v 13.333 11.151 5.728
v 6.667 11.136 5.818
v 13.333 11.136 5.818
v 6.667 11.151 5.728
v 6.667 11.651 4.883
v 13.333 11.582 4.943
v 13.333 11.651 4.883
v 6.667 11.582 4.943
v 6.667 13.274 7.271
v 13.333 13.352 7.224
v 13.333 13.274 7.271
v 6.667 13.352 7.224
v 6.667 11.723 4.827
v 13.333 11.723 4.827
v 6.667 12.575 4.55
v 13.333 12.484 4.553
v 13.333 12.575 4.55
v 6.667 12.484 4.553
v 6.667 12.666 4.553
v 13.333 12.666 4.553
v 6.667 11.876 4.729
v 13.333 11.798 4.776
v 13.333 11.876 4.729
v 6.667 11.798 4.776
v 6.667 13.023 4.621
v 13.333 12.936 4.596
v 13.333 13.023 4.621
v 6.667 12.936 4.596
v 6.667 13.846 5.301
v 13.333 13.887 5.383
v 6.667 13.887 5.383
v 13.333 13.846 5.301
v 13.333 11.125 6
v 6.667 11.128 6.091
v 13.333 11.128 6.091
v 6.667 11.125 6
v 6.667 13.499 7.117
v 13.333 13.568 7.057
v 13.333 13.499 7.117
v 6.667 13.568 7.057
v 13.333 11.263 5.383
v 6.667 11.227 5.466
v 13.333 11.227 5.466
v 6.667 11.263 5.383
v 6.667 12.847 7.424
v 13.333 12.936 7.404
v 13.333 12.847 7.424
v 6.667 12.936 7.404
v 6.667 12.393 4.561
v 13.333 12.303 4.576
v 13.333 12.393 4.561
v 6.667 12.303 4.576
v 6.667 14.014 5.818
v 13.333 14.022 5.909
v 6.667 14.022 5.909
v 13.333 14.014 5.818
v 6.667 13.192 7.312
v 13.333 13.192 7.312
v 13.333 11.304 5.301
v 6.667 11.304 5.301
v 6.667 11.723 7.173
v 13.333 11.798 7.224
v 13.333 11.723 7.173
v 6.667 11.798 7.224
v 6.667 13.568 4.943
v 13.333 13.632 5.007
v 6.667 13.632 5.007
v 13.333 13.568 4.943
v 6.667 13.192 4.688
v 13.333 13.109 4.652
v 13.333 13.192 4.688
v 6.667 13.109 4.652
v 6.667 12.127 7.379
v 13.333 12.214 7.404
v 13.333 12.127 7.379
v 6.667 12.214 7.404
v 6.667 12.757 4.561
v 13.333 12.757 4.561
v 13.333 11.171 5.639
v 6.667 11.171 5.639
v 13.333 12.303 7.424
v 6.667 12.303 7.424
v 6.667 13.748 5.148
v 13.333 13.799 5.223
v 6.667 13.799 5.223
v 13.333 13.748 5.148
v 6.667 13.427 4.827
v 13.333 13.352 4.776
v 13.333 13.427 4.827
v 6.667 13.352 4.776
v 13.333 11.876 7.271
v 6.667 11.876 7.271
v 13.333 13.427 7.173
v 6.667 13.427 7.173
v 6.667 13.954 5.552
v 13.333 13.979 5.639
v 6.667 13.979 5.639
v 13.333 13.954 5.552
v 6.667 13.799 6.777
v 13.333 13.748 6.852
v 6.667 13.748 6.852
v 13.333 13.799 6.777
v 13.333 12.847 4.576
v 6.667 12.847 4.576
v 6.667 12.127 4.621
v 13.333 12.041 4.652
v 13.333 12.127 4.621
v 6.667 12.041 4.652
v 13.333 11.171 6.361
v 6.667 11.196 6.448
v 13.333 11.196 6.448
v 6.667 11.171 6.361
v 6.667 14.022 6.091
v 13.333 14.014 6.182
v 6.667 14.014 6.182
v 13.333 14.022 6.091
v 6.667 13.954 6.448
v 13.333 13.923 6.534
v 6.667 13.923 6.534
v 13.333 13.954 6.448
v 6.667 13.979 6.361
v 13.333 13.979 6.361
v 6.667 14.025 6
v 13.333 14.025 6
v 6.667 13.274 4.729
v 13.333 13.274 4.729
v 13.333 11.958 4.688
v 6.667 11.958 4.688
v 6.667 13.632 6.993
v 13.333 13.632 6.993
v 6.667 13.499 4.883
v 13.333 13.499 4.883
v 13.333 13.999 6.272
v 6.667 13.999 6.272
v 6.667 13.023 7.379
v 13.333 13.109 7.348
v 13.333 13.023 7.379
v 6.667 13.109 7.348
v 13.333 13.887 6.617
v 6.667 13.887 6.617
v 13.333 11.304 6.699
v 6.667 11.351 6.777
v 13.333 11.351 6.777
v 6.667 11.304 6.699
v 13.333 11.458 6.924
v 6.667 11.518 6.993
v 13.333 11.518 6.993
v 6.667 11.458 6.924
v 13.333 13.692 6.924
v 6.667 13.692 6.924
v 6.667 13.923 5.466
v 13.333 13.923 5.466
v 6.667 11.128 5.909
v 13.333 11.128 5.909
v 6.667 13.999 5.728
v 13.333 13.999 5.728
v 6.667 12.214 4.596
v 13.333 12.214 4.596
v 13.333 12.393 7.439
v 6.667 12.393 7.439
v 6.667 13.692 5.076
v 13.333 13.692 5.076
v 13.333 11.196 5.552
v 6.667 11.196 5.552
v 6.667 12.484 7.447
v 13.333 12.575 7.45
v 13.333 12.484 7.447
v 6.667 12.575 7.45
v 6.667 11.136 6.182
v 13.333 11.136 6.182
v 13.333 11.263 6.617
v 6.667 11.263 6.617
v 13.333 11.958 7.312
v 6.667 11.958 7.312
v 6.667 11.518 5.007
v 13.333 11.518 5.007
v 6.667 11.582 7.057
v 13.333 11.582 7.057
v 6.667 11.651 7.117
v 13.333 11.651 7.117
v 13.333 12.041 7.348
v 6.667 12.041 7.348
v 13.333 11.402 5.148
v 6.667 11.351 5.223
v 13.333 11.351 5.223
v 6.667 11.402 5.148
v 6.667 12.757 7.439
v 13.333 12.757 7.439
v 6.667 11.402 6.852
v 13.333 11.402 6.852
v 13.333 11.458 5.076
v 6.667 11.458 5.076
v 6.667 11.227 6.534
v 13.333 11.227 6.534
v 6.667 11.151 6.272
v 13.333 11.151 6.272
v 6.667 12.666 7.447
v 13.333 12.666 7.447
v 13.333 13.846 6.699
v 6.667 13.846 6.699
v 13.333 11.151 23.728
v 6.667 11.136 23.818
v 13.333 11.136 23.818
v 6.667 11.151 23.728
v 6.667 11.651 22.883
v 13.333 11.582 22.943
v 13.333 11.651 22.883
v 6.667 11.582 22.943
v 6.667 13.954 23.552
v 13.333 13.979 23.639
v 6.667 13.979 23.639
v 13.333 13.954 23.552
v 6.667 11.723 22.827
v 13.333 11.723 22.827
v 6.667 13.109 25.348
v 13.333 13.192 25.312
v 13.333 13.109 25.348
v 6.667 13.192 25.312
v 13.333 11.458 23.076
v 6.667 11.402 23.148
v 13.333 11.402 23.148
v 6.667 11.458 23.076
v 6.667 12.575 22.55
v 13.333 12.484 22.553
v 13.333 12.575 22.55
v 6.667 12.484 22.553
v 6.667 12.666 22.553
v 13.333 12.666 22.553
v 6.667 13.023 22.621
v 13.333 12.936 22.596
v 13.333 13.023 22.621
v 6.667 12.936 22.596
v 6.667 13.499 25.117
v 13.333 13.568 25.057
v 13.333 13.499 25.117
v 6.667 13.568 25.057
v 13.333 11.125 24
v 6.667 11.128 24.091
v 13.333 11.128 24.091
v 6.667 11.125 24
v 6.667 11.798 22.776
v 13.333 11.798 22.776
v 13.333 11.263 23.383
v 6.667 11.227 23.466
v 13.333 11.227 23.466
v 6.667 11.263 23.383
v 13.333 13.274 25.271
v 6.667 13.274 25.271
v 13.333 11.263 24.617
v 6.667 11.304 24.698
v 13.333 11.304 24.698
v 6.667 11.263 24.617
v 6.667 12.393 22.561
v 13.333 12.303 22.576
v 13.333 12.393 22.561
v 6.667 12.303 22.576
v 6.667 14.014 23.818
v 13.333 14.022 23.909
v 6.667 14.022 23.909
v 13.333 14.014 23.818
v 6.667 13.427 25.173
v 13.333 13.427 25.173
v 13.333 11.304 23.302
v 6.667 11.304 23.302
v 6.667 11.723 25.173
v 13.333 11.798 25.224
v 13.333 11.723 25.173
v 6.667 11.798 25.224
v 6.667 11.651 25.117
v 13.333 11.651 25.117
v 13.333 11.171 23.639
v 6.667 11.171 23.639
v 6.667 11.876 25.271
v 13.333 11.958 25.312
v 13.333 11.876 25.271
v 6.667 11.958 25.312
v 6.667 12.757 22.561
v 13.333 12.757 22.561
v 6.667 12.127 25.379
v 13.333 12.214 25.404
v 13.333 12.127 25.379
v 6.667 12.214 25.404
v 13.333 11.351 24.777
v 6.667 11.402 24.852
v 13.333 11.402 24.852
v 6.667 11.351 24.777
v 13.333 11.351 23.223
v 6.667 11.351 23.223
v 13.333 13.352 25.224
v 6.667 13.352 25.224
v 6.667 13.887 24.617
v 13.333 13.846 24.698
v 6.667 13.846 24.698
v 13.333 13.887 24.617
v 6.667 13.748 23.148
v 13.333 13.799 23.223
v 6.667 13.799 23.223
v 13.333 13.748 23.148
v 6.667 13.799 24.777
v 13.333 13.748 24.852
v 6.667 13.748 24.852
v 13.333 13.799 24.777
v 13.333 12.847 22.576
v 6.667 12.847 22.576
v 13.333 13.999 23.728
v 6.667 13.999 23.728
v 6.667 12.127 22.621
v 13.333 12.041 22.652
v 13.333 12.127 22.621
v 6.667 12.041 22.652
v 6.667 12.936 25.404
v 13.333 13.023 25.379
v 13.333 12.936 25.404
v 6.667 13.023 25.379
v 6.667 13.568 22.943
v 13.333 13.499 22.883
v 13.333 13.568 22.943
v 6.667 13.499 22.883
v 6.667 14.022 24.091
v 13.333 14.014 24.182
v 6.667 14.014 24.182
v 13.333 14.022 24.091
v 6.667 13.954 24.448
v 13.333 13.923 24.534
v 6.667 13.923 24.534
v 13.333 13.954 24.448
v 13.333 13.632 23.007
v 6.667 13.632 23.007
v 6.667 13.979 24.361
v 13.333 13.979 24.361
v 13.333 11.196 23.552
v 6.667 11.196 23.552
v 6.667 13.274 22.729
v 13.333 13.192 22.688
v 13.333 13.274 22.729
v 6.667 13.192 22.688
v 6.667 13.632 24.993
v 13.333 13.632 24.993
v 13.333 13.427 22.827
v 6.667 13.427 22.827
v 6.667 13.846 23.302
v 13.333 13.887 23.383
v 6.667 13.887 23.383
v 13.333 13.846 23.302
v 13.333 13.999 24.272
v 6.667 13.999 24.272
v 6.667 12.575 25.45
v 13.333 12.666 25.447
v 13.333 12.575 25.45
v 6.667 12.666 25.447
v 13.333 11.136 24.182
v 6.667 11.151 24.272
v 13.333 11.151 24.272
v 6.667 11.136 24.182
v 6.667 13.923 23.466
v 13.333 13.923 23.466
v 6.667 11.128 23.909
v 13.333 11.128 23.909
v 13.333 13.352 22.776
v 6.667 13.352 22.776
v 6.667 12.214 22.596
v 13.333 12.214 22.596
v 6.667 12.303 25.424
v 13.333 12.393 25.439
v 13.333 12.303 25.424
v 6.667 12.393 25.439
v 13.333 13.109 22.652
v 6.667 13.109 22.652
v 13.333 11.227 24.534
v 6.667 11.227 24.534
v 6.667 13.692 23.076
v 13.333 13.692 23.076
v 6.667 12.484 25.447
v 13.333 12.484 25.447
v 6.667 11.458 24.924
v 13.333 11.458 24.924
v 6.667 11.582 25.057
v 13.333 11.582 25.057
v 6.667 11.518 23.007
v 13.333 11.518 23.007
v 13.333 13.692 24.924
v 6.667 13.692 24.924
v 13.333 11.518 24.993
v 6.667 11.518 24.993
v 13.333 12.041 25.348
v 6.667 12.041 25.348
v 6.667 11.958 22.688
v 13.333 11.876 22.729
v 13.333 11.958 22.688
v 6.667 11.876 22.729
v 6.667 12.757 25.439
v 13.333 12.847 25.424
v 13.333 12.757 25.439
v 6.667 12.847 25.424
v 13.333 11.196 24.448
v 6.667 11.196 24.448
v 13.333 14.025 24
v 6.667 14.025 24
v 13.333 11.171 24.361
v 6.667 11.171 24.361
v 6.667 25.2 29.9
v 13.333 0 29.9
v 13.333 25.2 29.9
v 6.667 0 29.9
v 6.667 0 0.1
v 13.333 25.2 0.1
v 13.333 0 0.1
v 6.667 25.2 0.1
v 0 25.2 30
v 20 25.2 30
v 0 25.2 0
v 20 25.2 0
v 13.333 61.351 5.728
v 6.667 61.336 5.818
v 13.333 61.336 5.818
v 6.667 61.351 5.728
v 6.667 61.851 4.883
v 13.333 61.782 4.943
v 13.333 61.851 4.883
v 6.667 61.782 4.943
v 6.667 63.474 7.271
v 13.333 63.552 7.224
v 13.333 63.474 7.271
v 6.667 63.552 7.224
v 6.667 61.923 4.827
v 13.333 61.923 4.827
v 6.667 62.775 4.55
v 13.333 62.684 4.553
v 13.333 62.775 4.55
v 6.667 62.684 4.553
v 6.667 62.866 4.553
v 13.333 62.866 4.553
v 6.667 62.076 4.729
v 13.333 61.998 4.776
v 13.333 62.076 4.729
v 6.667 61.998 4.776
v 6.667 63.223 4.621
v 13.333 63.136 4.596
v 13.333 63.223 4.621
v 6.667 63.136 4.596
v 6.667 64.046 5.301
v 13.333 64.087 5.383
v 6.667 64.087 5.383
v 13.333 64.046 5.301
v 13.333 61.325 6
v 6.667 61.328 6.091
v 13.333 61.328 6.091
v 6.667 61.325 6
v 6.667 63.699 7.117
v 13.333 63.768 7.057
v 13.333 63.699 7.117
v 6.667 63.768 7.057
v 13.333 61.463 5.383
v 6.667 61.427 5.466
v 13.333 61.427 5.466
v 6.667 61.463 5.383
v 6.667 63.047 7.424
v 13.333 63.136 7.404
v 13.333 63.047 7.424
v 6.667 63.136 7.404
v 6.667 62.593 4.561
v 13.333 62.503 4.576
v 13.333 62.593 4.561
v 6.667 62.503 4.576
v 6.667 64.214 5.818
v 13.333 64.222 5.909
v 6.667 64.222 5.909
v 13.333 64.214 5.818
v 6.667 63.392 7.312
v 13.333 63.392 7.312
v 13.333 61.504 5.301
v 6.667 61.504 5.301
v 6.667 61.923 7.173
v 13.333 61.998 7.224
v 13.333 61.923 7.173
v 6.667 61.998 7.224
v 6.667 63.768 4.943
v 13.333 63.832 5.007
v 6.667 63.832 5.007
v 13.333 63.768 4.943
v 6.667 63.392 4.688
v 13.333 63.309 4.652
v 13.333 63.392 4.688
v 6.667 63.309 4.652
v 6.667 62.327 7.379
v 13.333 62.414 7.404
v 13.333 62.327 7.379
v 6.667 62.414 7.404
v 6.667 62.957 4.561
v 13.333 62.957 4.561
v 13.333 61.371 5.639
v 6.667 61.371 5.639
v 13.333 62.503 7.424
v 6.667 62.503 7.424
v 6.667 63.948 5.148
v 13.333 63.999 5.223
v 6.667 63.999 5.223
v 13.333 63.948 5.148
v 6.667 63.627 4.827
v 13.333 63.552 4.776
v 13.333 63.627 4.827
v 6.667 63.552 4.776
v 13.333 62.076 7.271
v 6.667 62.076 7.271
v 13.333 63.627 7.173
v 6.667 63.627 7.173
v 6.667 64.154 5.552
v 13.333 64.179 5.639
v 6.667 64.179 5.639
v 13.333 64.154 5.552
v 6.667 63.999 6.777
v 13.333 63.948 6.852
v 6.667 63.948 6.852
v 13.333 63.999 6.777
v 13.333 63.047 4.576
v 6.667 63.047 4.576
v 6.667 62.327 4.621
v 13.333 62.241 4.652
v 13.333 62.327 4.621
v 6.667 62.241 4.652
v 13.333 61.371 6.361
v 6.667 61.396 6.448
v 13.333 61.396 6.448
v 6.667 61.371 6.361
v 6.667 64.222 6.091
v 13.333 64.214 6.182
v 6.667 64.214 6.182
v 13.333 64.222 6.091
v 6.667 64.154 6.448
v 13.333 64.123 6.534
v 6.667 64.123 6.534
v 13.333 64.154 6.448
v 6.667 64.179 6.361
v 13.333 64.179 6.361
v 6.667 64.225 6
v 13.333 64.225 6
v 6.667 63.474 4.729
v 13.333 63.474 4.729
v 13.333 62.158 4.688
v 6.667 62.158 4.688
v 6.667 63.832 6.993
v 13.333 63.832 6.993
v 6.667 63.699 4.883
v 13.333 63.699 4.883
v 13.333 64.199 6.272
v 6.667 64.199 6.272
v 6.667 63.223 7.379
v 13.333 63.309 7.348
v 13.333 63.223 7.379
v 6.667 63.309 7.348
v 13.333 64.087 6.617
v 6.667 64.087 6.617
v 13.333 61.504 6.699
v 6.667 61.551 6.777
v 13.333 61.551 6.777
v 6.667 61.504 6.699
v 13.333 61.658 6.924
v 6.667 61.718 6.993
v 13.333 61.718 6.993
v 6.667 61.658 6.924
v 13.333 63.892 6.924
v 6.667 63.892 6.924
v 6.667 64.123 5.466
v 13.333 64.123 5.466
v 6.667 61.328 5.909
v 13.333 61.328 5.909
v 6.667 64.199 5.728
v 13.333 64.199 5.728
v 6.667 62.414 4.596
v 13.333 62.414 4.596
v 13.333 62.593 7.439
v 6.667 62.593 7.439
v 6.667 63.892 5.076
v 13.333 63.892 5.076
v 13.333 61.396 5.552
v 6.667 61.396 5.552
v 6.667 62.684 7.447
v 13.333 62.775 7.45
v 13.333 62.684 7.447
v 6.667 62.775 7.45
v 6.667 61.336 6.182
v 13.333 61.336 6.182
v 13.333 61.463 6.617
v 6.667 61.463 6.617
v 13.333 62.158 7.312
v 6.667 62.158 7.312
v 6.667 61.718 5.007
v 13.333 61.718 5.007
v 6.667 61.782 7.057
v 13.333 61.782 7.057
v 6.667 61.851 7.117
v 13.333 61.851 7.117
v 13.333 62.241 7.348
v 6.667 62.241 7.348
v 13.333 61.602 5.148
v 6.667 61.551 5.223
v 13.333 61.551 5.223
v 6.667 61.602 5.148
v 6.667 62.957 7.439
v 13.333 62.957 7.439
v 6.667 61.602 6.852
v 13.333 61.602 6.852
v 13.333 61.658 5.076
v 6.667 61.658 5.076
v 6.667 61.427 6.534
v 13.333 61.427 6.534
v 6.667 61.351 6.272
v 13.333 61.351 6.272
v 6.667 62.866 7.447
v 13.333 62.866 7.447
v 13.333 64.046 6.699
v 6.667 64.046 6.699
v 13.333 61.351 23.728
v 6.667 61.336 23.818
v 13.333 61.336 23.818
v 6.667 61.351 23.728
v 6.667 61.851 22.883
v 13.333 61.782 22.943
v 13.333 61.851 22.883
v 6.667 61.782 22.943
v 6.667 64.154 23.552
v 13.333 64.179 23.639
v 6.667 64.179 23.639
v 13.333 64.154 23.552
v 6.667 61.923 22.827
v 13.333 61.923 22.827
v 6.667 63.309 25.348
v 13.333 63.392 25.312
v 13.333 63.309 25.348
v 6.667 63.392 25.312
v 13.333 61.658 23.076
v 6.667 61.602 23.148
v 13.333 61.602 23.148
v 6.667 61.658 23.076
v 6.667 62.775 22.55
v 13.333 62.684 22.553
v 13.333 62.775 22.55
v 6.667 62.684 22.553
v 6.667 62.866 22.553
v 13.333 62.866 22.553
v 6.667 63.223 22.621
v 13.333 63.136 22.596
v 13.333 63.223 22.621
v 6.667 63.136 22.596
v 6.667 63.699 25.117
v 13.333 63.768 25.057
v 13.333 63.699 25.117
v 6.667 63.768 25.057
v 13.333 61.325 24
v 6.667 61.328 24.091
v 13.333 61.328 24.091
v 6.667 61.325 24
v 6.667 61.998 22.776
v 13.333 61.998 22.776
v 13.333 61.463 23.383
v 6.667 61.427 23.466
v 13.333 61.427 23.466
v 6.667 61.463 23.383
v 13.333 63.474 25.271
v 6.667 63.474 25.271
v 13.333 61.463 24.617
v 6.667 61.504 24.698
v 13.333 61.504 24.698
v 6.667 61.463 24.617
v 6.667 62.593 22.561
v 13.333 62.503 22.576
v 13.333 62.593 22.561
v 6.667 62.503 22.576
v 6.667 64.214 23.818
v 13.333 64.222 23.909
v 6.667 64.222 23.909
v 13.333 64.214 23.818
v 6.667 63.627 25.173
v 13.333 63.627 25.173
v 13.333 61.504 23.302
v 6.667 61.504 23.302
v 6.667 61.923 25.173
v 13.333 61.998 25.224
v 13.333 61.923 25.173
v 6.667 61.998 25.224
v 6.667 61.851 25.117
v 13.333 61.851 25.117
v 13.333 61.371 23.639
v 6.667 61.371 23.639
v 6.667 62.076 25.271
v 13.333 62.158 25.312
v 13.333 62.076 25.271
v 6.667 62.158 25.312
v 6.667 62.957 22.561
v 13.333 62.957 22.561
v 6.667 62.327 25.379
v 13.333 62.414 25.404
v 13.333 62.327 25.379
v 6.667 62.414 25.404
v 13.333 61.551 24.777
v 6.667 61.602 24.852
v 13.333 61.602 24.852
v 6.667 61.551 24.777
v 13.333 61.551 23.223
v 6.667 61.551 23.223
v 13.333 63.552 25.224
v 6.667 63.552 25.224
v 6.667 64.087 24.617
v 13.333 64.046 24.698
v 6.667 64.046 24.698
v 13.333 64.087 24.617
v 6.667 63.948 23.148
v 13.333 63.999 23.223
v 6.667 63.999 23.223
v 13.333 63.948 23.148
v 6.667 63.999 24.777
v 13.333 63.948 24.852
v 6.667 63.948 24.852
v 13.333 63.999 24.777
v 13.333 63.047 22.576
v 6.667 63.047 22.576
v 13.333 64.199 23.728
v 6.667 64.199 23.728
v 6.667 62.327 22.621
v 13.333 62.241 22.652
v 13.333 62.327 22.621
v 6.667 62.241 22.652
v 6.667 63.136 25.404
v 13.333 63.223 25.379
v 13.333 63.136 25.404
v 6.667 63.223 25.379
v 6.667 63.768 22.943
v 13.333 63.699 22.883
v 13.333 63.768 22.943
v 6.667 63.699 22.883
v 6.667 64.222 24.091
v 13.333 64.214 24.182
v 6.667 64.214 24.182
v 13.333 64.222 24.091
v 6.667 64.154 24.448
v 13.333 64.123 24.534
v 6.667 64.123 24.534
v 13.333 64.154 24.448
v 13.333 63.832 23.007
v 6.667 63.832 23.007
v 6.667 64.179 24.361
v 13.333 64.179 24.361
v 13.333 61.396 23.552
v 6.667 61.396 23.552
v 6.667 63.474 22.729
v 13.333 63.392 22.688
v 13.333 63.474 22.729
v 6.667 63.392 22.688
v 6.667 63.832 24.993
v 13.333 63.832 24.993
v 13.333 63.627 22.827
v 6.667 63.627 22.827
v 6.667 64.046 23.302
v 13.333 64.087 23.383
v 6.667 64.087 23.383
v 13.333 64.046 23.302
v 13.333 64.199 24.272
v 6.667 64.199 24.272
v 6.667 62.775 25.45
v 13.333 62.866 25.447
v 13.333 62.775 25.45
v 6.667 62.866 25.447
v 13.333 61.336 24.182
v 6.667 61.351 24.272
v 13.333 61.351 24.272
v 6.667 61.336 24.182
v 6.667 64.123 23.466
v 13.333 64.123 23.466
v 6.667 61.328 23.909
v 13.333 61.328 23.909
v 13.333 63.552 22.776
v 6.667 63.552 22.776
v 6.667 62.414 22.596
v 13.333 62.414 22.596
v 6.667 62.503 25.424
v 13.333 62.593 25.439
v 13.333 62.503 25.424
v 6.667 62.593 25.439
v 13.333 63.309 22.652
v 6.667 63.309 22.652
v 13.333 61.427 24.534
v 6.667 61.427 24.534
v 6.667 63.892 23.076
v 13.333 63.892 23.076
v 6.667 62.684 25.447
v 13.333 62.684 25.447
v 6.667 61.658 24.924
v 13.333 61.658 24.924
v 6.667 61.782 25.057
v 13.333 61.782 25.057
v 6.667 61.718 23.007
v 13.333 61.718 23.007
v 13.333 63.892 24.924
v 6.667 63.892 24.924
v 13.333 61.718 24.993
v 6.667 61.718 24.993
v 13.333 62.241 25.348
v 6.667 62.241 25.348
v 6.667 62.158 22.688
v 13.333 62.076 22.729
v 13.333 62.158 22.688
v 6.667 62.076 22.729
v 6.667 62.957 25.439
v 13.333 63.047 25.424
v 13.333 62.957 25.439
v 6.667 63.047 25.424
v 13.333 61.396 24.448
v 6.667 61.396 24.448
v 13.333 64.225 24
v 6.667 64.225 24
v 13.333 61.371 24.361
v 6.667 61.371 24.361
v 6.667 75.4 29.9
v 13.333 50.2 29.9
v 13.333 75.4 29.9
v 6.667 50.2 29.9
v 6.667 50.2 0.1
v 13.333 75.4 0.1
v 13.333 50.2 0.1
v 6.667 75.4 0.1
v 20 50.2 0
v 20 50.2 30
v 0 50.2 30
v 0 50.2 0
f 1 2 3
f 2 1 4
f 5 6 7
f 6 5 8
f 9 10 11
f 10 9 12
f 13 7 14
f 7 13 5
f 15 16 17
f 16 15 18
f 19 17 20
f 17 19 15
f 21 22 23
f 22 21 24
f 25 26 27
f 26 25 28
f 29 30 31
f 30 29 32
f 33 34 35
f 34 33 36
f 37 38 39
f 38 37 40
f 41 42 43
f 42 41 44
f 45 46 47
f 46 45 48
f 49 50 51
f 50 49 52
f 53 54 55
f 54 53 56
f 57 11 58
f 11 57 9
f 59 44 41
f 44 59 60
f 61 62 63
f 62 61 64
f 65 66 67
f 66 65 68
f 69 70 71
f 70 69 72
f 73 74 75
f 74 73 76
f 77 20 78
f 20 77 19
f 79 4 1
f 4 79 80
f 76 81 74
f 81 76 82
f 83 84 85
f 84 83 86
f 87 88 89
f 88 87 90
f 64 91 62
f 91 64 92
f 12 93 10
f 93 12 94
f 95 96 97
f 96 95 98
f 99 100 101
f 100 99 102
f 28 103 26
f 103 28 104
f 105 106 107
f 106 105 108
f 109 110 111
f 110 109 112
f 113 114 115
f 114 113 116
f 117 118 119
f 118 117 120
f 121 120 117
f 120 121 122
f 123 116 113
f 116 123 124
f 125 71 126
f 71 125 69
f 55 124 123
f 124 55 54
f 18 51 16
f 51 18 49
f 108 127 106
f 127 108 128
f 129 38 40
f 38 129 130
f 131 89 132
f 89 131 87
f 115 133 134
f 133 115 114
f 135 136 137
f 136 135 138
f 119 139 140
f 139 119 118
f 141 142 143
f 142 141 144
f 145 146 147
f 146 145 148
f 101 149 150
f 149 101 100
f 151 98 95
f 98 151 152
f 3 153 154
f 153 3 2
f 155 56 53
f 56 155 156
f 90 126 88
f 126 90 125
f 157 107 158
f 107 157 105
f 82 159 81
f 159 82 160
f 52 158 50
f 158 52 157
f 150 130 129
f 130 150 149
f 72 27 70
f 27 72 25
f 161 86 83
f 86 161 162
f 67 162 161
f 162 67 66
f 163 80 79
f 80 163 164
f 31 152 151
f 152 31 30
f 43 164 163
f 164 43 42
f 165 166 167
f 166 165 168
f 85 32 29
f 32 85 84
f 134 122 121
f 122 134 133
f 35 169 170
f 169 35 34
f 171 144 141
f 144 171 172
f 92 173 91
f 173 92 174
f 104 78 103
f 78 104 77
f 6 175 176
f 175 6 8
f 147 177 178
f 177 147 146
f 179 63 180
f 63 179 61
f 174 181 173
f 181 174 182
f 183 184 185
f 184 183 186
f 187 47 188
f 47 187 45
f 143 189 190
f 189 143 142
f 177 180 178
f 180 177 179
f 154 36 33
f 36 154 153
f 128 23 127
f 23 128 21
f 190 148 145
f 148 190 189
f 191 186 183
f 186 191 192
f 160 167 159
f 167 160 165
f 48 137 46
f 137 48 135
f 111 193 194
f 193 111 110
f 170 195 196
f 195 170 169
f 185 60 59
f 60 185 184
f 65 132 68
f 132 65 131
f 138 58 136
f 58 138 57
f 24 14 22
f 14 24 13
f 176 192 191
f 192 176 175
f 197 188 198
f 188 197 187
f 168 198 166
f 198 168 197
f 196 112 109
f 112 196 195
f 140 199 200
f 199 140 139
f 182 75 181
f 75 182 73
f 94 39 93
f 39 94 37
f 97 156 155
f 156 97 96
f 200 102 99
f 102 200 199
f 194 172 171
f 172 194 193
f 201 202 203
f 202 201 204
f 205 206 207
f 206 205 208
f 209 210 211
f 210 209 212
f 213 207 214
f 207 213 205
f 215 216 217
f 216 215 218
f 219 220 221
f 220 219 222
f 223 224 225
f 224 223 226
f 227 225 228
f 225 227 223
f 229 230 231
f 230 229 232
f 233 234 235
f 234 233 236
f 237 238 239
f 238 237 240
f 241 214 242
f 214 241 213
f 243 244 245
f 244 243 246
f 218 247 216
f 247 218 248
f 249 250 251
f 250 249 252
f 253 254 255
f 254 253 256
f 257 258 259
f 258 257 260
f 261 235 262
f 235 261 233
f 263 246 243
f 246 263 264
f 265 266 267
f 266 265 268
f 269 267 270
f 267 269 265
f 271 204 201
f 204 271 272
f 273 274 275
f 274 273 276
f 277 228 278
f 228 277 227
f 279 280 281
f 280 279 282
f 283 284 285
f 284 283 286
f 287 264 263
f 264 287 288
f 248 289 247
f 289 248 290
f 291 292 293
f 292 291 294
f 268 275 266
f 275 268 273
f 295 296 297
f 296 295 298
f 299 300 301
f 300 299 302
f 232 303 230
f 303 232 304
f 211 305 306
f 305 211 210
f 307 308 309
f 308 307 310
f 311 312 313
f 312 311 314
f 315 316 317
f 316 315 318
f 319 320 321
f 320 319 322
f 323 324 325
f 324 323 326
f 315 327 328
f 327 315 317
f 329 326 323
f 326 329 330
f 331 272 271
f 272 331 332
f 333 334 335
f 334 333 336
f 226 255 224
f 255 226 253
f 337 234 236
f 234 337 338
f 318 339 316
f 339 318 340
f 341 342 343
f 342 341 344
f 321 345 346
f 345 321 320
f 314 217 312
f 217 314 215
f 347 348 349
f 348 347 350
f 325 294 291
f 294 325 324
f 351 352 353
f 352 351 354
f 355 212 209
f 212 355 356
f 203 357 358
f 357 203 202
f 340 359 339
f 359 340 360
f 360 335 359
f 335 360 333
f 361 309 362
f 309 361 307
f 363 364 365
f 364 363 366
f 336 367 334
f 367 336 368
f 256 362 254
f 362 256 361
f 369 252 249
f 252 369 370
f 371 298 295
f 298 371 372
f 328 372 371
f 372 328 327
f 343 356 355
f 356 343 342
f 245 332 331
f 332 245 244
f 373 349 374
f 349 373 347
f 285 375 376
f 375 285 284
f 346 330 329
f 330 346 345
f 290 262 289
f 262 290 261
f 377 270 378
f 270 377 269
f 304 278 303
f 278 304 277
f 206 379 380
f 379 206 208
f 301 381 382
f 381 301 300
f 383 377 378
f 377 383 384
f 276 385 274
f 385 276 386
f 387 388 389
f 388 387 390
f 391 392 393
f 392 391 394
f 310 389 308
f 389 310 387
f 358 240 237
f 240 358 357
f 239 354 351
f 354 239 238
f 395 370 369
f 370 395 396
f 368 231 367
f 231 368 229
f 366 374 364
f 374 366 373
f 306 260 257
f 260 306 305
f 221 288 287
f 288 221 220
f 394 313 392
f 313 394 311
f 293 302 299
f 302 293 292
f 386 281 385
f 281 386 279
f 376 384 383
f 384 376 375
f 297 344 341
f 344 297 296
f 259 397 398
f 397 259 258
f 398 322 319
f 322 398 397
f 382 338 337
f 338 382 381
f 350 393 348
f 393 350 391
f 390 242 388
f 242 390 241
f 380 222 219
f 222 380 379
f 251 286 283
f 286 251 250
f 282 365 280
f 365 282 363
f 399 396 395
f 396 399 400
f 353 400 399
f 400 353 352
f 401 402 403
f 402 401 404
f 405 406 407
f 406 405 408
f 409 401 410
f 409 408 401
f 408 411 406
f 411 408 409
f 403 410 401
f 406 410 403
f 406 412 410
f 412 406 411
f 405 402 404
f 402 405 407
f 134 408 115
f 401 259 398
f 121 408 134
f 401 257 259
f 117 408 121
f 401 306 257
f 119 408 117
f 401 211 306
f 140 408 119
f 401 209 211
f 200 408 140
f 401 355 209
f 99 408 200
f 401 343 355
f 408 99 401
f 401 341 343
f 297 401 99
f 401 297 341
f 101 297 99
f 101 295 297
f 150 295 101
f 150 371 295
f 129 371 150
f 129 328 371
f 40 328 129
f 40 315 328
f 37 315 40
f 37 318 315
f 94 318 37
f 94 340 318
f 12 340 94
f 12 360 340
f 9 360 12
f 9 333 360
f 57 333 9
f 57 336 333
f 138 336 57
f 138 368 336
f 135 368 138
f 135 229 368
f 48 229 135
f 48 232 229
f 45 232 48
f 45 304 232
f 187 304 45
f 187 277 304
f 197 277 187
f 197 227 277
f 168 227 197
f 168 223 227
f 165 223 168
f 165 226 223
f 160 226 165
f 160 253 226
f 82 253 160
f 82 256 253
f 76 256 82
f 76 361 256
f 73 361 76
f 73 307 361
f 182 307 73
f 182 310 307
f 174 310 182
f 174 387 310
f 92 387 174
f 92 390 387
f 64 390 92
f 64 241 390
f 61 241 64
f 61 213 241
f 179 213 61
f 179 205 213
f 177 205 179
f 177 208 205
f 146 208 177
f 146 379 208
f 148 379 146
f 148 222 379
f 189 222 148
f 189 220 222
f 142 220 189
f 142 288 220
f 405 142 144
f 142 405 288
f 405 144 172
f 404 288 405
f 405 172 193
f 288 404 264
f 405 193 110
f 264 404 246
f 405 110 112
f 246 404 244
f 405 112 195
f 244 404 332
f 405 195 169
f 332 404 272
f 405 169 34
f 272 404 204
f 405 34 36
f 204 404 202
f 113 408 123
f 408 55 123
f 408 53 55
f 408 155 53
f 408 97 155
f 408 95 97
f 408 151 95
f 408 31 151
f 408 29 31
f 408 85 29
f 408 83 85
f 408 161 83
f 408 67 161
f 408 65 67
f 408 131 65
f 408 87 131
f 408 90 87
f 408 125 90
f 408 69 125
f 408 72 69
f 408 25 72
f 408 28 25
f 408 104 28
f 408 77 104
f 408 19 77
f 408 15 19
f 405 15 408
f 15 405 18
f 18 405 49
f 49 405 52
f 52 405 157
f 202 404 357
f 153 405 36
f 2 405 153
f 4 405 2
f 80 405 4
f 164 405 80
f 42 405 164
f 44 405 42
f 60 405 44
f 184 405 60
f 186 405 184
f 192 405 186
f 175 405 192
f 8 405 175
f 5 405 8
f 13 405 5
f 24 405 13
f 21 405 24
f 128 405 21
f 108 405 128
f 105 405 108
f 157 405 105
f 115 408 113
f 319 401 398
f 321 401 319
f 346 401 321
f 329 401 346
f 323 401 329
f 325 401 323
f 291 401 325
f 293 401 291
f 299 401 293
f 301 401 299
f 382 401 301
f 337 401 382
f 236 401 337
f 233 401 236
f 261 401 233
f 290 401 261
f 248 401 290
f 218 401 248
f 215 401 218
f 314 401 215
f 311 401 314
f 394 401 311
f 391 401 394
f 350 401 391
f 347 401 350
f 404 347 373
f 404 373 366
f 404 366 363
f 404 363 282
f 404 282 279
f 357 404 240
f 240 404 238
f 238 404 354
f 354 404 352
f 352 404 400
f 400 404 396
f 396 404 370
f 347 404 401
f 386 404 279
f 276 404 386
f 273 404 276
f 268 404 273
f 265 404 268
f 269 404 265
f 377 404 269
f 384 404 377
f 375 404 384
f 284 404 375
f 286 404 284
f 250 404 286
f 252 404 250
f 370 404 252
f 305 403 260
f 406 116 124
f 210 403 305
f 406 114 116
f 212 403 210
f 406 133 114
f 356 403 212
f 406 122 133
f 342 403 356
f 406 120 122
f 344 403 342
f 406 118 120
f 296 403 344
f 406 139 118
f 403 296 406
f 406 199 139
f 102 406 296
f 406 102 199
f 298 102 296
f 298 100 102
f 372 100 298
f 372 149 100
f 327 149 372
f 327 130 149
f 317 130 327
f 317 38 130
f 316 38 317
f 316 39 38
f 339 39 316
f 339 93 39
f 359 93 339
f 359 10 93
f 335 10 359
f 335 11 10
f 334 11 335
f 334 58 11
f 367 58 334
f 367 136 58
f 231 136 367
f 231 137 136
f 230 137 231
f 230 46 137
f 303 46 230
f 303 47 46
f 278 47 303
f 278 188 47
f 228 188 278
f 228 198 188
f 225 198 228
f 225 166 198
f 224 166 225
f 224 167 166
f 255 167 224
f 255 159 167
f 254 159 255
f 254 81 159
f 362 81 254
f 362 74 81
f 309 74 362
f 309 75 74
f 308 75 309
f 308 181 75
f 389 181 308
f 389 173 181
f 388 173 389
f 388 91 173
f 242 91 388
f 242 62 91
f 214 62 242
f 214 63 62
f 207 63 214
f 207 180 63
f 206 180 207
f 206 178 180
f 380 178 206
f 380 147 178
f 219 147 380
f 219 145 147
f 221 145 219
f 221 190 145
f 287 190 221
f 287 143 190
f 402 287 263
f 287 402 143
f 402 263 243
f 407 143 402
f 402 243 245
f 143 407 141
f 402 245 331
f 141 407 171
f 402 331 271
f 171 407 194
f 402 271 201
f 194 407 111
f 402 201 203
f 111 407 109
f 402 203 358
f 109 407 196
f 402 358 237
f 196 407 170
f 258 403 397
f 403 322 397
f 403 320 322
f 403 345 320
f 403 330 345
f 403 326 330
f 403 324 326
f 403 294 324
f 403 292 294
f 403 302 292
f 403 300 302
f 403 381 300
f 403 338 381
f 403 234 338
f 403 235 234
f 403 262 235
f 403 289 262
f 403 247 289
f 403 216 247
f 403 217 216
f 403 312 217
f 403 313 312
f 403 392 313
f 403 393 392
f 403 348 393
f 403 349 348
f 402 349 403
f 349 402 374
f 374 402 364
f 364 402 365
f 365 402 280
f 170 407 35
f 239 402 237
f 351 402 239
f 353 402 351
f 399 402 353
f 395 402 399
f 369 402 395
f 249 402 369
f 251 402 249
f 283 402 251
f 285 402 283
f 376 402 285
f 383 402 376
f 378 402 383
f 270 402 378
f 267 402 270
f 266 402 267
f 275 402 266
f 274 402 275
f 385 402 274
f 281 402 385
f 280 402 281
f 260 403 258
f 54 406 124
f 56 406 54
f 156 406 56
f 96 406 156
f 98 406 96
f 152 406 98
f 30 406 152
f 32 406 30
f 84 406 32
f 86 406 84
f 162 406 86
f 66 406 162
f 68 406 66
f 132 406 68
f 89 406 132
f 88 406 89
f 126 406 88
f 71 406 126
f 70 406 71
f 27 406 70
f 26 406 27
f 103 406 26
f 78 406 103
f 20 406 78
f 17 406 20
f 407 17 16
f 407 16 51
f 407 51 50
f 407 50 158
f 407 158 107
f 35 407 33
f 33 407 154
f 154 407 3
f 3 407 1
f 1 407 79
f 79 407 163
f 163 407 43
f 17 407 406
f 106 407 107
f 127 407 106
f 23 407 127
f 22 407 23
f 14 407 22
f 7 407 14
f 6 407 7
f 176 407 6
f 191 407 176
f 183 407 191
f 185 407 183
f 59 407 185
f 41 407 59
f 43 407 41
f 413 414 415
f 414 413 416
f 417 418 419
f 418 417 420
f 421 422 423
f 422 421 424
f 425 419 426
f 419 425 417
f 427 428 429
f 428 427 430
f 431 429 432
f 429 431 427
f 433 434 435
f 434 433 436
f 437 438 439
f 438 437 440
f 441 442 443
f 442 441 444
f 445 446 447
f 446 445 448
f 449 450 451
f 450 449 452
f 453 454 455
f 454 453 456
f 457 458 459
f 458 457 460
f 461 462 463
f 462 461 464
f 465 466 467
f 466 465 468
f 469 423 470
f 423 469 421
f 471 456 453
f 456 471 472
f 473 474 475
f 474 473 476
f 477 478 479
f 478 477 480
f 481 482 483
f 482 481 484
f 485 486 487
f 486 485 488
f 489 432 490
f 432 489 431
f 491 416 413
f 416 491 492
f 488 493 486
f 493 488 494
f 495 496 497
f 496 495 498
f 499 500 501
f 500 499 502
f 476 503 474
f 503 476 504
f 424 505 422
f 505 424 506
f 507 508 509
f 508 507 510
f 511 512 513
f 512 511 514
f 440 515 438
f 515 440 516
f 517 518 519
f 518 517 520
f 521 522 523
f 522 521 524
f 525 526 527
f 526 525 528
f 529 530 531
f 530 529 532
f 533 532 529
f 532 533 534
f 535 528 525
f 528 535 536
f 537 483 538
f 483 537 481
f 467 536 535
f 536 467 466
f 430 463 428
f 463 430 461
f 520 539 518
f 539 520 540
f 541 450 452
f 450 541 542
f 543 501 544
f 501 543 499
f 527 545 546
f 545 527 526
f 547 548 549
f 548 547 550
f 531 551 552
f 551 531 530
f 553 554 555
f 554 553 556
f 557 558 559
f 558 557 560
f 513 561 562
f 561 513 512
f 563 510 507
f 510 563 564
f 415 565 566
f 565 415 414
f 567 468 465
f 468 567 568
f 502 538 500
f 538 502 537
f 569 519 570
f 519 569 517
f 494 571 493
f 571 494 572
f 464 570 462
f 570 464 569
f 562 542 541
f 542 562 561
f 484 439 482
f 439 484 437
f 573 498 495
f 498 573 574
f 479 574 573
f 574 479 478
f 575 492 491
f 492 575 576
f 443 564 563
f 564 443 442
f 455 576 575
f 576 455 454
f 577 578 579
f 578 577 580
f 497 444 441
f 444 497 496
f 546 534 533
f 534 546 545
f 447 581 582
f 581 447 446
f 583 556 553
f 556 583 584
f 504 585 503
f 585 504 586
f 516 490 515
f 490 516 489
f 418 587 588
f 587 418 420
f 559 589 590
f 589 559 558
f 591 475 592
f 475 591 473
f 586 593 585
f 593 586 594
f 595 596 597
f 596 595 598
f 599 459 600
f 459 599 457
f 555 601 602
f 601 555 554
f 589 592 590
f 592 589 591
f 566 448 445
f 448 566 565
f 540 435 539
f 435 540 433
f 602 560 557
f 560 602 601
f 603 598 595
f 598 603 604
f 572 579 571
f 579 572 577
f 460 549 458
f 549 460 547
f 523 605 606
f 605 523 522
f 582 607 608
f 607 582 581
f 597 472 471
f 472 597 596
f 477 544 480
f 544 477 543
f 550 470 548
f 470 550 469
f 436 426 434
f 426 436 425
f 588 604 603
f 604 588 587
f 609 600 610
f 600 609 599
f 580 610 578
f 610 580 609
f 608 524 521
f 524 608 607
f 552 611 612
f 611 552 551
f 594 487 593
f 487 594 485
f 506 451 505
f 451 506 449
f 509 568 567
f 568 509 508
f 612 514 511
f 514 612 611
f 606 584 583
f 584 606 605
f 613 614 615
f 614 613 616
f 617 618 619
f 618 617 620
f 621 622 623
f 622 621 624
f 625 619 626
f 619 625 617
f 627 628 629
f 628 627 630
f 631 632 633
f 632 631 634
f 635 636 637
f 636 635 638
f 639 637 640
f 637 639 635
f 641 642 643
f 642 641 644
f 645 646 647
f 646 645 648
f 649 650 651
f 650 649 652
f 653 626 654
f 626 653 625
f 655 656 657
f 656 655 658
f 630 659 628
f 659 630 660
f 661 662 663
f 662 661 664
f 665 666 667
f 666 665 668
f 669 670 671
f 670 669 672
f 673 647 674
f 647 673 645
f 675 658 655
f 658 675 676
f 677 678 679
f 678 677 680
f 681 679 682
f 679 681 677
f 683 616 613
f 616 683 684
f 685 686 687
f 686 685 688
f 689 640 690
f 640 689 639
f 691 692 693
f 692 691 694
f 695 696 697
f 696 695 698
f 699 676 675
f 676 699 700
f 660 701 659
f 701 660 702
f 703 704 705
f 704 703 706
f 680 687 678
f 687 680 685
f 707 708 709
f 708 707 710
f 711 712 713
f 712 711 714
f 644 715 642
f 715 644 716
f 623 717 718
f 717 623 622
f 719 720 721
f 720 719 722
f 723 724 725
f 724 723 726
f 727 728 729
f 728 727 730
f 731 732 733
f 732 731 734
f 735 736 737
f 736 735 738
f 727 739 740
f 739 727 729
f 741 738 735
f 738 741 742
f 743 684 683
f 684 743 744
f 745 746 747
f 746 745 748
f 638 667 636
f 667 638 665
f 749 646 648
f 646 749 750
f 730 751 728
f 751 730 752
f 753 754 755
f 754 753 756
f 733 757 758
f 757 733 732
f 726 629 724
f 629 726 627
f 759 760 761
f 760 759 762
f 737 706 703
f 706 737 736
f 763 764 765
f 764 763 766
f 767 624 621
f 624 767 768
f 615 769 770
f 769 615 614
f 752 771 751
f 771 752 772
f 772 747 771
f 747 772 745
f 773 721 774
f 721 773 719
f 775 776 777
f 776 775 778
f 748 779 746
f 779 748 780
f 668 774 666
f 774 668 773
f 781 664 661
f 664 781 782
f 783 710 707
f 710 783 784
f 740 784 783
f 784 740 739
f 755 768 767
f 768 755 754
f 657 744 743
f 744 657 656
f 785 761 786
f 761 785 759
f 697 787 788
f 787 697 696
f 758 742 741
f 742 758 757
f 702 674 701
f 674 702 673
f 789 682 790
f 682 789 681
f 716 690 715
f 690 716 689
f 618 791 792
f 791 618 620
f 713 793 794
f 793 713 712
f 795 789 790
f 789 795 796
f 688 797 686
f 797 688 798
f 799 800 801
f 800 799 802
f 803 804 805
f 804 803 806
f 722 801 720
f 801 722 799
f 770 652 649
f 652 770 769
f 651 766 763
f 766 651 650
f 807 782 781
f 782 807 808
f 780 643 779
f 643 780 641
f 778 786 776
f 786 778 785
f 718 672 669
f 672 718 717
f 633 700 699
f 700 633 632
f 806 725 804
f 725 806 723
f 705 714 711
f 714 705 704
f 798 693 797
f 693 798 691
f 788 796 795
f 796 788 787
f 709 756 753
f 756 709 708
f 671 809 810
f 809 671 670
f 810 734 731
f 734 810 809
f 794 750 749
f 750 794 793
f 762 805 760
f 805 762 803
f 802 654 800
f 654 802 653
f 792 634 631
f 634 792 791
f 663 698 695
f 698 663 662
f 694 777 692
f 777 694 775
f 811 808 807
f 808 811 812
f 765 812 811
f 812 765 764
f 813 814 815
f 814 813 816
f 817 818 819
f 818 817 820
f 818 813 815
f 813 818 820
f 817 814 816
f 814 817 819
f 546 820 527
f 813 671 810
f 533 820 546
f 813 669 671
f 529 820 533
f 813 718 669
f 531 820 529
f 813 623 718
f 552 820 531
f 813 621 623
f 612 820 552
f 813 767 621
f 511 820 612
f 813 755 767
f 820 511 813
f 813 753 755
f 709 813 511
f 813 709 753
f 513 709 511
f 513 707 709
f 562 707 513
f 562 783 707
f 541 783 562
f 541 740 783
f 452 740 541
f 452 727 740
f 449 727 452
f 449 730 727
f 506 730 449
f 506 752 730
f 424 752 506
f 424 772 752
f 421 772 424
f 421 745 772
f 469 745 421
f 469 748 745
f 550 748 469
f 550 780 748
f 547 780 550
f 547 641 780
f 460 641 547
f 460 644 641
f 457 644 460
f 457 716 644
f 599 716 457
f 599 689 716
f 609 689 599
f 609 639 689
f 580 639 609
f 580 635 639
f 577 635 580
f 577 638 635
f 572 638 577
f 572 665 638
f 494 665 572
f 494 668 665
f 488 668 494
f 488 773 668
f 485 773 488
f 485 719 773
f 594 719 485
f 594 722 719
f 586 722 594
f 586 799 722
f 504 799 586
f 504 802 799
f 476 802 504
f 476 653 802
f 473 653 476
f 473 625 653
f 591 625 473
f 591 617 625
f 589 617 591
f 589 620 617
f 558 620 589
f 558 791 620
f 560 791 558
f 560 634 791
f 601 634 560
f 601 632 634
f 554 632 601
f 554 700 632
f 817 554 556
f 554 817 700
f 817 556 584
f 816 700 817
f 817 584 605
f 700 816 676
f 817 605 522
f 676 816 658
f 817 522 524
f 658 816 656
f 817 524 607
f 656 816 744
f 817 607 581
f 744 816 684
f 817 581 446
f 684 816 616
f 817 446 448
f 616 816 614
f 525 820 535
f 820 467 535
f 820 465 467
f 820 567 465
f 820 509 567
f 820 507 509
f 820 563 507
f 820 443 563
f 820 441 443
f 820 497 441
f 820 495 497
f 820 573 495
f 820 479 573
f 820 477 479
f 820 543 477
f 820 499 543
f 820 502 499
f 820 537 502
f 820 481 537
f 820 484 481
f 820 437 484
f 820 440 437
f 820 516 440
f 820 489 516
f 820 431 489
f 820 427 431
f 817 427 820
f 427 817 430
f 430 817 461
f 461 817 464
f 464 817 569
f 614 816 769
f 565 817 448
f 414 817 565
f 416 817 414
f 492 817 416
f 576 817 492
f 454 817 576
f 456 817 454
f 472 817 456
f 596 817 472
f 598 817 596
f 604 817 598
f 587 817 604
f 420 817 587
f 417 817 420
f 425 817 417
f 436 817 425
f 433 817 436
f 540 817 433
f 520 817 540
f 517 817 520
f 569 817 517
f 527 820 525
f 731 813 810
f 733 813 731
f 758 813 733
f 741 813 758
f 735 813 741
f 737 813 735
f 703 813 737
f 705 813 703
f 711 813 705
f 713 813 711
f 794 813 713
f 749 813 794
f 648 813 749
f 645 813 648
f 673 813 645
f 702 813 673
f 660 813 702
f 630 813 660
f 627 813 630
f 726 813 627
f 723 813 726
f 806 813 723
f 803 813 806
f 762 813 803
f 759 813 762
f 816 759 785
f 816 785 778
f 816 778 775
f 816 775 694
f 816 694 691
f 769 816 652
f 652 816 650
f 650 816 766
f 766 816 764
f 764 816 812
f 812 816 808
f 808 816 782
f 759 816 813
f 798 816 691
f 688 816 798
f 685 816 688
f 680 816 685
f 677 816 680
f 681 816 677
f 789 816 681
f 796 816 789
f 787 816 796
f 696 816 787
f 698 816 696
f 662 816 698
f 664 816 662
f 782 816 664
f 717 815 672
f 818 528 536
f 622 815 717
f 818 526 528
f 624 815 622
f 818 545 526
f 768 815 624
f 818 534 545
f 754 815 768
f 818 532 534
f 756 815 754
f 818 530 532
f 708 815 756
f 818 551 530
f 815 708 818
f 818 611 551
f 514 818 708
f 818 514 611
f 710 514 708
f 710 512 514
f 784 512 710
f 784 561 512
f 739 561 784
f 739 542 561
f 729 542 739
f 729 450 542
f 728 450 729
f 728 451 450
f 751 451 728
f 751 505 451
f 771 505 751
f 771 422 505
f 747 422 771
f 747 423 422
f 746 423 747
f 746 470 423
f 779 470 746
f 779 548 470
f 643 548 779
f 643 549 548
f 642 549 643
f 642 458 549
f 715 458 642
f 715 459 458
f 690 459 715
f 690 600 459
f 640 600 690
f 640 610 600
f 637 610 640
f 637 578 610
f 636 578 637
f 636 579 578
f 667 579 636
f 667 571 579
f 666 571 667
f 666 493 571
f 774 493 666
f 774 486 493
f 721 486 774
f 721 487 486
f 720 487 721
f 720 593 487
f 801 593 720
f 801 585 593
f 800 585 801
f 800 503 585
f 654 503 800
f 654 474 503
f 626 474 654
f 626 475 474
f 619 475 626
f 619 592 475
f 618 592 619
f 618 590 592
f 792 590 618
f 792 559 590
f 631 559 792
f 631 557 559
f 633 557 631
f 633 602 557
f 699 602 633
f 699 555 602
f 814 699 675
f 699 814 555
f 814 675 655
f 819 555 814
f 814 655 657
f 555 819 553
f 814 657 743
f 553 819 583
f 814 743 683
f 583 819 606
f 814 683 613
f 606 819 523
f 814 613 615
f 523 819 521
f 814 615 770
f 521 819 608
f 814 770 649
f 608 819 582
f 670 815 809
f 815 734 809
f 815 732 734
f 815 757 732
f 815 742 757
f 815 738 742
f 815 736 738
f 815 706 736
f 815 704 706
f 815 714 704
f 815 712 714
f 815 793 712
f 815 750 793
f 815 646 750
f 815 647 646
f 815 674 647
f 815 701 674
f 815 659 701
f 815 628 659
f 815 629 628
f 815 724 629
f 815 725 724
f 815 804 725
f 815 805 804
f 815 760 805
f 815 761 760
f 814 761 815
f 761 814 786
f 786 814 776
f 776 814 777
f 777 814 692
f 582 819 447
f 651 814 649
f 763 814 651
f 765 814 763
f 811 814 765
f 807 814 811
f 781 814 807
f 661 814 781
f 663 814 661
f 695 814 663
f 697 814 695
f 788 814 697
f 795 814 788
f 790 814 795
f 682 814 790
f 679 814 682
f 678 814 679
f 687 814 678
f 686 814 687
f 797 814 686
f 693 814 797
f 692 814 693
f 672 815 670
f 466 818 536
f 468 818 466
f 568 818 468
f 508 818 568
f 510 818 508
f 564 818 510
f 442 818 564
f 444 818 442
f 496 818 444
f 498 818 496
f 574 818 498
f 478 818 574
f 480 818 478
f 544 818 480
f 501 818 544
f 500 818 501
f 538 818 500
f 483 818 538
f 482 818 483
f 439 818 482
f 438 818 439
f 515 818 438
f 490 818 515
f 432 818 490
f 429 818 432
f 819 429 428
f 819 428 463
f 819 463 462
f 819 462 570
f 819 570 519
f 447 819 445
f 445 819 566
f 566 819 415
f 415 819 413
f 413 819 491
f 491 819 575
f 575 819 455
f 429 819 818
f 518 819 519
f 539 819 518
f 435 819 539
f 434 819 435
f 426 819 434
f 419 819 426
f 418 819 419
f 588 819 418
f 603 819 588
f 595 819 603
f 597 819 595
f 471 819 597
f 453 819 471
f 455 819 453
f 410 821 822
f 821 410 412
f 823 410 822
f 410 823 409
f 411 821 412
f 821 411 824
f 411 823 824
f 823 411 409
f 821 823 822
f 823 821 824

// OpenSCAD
// file: ../frame_bar_extension_25mm_base.scad
// Frame Bar Extension
// This extension piece connects two frame bars with a configurable middle section
include <../../shared_helper.scad>;

revision = 1.2;

// TODO: Add in M4 Alternative
// TODO: Add in NUT Alternatives for M4 and M3

// Adjustable values
extension_length = 25.0;                  // Length of the extension middle section (adjustable)

hole_diameter = m3_hole_diameter;         // Using M3 holes from shared_helper

countersunk_hole_diameter = m3_head_diameter;
countersunk_hole_depth = m3_head_depth + 0.5;

knurled_insert_diameter = m3_type1_knurled_insert_diameter;
knurled_insert_depth = m3_type1_knurled_insert_depth;

// Frame bar connector dimensions
connector_width = 20.0;                   // Width of the frame bar connector
connector_height = 30.0;                  // Height of the frame bar connector
mount_depth = 25.0;                       // Depth of the connector interfaces

// Hole specifications
hole_top_margin = 3.7 + (2.3);            // Distance from top edge to first hole center
hole_spacing = 13.4;                      // Distance between hole centers
hole_front_margin = 10.2 - (2.3) + 4.675; // Distance from front edge to hole centers

// Tolerance for better fit
fit_tolerance = 0.2;                      // Tolerance for male connector to fit into female

// Derived values
mounting_width_void = connector_width / 3.0;

module mounting_holes() {
  translate([0, hole_front_margin, hole_top_margin]) {
    rotate([0, 90, 0]) {
      cylinder(d=hole_diameter, h=100.00);
    }
  }

  translate([0, hole_front_margin, connector_height - hole_top_margin]) {
    rotate([0, 90, 0]) {
      cylinder(d=hole_diameter, h=100.00);
    }
  }
}

module countersunk_holes() {
  translate([0, hole_front_margin, hole_top_margin]) {
    rotate([0, 90, 0]) {
      cylinder(d=countersunk_hole_diameter, h=countersunk_hole_depth);
    }
  }

  translate([0, hole_front_margin, connector_height - hole_top_margin]) {
    rotate([0, 90, 0]) {
      cylinder(d=countersunk_hole_diameter, h=countersunk_hole_depth);
    }
  }
}

module heat_insert_holes() {
  translate([(connector_width - knurled_insert_depth), hole_front_margin, hole_top_margin]) {
    rotate([0, 90, 0]) {
      cylinder(d=knurled_insert_diameter, h=knurled_insert_depth);
    }
  }

  translate([(connector_width - knurled_insert_depth), hole_front_margin, connector_height - hole_top_margin]) {
    rotate([0, 90, 0]) {
      cylinder(d=knurled_insert_diameter, h=knurled_insert_depth);
    }
  }
}

module female_mount() {
  difference() {
    cube([connector_width, mount_depth, connector_height]);
    // Mounting space
    translate([mounting_width_void, 0, 0]) {
      cube([mounting_width_void, mount_depth, connector_height]);
    }

    mounting_holes();
    countersunk_holes();
    heat_insert_holes();
  }
}

module male_mount() {
  difference() {
    // Apply tolerance to the male connector width and height
    translate([fit_tolerance/2, 0, fit_tolerance/2]) {
      cube([connector_width - fit_tolerance, mount_depth + fit_tolerance, connector_height - fit_tolerance]);
    }

    // Mounting spaces - adjusted for the new position
    translate([fit_tolerance/2, 0, fit_tolerance/2]) {
      cube([mounting_width_void - fit_tolerance/2, mount_depth + fit_tolerance, connector_height - fit_tolerance]);
    }

    translate([connector_width - mounting_width_void, 0, fit_tolerance/2]) {
      cube([mounting_width_void - fit_tolerance/2, mount_depth + fit_tolerance, connector_height - fit_tolerance]);
    }

    // Holes - keep original positions to maintain alignment
    mounting_holes();
  }
}

module extension() {
  cube([connector_width, extension_length, connector_height]);
}
// main file
// Frame Bar Extension
// This extension piece connects two frame bars with a configurable middle section
include <../frame_bar_extension_25mm_base.scad>;

revision = 1.2;

countersunk_hole_diameter = m4_head_diameter;
countersunk_hole_depth = m4_head_depth + 0.5;

knurled_insert_diameter = m4_type1_knurled_insert_diameter;
knurled_insert_depth = m4_type1_knurled_insert_depth;

module heat_insert_holes() {}

module frame_bar_extension() {
  union() {
    // female_mount();
    male_mount();

    translate([0, mount_depth + fit_tolerance, 0]) {
      extension();
    }

    translate([0, mount_depth + fit_tolerance + extension_length, 0]) {
      male_mount();
    }
  }
}

// Render the extension piece
frame_bar_extension();
